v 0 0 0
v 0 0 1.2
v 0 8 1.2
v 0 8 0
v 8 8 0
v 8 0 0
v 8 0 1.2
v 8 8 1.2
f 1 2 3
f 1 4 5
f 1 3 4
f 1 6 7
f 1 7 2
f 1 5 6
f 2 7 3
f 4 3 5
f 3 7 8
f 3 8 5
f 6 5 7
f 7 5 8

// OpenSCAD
/* Warning, this is a very basic generator with a lot of approximation 
input data : [TFBGA, RKC, 8x8x1.2mm, 196, , A, C04-25611A]
generated by com.zoubworld.electronics.cad.model3d.Basic
Date : Sun Feb 15 10:50:49 CET 2026
*/

//body
color("black")
translate([0,0,0])
cube([8.0,8.0,1.2], center=false);
